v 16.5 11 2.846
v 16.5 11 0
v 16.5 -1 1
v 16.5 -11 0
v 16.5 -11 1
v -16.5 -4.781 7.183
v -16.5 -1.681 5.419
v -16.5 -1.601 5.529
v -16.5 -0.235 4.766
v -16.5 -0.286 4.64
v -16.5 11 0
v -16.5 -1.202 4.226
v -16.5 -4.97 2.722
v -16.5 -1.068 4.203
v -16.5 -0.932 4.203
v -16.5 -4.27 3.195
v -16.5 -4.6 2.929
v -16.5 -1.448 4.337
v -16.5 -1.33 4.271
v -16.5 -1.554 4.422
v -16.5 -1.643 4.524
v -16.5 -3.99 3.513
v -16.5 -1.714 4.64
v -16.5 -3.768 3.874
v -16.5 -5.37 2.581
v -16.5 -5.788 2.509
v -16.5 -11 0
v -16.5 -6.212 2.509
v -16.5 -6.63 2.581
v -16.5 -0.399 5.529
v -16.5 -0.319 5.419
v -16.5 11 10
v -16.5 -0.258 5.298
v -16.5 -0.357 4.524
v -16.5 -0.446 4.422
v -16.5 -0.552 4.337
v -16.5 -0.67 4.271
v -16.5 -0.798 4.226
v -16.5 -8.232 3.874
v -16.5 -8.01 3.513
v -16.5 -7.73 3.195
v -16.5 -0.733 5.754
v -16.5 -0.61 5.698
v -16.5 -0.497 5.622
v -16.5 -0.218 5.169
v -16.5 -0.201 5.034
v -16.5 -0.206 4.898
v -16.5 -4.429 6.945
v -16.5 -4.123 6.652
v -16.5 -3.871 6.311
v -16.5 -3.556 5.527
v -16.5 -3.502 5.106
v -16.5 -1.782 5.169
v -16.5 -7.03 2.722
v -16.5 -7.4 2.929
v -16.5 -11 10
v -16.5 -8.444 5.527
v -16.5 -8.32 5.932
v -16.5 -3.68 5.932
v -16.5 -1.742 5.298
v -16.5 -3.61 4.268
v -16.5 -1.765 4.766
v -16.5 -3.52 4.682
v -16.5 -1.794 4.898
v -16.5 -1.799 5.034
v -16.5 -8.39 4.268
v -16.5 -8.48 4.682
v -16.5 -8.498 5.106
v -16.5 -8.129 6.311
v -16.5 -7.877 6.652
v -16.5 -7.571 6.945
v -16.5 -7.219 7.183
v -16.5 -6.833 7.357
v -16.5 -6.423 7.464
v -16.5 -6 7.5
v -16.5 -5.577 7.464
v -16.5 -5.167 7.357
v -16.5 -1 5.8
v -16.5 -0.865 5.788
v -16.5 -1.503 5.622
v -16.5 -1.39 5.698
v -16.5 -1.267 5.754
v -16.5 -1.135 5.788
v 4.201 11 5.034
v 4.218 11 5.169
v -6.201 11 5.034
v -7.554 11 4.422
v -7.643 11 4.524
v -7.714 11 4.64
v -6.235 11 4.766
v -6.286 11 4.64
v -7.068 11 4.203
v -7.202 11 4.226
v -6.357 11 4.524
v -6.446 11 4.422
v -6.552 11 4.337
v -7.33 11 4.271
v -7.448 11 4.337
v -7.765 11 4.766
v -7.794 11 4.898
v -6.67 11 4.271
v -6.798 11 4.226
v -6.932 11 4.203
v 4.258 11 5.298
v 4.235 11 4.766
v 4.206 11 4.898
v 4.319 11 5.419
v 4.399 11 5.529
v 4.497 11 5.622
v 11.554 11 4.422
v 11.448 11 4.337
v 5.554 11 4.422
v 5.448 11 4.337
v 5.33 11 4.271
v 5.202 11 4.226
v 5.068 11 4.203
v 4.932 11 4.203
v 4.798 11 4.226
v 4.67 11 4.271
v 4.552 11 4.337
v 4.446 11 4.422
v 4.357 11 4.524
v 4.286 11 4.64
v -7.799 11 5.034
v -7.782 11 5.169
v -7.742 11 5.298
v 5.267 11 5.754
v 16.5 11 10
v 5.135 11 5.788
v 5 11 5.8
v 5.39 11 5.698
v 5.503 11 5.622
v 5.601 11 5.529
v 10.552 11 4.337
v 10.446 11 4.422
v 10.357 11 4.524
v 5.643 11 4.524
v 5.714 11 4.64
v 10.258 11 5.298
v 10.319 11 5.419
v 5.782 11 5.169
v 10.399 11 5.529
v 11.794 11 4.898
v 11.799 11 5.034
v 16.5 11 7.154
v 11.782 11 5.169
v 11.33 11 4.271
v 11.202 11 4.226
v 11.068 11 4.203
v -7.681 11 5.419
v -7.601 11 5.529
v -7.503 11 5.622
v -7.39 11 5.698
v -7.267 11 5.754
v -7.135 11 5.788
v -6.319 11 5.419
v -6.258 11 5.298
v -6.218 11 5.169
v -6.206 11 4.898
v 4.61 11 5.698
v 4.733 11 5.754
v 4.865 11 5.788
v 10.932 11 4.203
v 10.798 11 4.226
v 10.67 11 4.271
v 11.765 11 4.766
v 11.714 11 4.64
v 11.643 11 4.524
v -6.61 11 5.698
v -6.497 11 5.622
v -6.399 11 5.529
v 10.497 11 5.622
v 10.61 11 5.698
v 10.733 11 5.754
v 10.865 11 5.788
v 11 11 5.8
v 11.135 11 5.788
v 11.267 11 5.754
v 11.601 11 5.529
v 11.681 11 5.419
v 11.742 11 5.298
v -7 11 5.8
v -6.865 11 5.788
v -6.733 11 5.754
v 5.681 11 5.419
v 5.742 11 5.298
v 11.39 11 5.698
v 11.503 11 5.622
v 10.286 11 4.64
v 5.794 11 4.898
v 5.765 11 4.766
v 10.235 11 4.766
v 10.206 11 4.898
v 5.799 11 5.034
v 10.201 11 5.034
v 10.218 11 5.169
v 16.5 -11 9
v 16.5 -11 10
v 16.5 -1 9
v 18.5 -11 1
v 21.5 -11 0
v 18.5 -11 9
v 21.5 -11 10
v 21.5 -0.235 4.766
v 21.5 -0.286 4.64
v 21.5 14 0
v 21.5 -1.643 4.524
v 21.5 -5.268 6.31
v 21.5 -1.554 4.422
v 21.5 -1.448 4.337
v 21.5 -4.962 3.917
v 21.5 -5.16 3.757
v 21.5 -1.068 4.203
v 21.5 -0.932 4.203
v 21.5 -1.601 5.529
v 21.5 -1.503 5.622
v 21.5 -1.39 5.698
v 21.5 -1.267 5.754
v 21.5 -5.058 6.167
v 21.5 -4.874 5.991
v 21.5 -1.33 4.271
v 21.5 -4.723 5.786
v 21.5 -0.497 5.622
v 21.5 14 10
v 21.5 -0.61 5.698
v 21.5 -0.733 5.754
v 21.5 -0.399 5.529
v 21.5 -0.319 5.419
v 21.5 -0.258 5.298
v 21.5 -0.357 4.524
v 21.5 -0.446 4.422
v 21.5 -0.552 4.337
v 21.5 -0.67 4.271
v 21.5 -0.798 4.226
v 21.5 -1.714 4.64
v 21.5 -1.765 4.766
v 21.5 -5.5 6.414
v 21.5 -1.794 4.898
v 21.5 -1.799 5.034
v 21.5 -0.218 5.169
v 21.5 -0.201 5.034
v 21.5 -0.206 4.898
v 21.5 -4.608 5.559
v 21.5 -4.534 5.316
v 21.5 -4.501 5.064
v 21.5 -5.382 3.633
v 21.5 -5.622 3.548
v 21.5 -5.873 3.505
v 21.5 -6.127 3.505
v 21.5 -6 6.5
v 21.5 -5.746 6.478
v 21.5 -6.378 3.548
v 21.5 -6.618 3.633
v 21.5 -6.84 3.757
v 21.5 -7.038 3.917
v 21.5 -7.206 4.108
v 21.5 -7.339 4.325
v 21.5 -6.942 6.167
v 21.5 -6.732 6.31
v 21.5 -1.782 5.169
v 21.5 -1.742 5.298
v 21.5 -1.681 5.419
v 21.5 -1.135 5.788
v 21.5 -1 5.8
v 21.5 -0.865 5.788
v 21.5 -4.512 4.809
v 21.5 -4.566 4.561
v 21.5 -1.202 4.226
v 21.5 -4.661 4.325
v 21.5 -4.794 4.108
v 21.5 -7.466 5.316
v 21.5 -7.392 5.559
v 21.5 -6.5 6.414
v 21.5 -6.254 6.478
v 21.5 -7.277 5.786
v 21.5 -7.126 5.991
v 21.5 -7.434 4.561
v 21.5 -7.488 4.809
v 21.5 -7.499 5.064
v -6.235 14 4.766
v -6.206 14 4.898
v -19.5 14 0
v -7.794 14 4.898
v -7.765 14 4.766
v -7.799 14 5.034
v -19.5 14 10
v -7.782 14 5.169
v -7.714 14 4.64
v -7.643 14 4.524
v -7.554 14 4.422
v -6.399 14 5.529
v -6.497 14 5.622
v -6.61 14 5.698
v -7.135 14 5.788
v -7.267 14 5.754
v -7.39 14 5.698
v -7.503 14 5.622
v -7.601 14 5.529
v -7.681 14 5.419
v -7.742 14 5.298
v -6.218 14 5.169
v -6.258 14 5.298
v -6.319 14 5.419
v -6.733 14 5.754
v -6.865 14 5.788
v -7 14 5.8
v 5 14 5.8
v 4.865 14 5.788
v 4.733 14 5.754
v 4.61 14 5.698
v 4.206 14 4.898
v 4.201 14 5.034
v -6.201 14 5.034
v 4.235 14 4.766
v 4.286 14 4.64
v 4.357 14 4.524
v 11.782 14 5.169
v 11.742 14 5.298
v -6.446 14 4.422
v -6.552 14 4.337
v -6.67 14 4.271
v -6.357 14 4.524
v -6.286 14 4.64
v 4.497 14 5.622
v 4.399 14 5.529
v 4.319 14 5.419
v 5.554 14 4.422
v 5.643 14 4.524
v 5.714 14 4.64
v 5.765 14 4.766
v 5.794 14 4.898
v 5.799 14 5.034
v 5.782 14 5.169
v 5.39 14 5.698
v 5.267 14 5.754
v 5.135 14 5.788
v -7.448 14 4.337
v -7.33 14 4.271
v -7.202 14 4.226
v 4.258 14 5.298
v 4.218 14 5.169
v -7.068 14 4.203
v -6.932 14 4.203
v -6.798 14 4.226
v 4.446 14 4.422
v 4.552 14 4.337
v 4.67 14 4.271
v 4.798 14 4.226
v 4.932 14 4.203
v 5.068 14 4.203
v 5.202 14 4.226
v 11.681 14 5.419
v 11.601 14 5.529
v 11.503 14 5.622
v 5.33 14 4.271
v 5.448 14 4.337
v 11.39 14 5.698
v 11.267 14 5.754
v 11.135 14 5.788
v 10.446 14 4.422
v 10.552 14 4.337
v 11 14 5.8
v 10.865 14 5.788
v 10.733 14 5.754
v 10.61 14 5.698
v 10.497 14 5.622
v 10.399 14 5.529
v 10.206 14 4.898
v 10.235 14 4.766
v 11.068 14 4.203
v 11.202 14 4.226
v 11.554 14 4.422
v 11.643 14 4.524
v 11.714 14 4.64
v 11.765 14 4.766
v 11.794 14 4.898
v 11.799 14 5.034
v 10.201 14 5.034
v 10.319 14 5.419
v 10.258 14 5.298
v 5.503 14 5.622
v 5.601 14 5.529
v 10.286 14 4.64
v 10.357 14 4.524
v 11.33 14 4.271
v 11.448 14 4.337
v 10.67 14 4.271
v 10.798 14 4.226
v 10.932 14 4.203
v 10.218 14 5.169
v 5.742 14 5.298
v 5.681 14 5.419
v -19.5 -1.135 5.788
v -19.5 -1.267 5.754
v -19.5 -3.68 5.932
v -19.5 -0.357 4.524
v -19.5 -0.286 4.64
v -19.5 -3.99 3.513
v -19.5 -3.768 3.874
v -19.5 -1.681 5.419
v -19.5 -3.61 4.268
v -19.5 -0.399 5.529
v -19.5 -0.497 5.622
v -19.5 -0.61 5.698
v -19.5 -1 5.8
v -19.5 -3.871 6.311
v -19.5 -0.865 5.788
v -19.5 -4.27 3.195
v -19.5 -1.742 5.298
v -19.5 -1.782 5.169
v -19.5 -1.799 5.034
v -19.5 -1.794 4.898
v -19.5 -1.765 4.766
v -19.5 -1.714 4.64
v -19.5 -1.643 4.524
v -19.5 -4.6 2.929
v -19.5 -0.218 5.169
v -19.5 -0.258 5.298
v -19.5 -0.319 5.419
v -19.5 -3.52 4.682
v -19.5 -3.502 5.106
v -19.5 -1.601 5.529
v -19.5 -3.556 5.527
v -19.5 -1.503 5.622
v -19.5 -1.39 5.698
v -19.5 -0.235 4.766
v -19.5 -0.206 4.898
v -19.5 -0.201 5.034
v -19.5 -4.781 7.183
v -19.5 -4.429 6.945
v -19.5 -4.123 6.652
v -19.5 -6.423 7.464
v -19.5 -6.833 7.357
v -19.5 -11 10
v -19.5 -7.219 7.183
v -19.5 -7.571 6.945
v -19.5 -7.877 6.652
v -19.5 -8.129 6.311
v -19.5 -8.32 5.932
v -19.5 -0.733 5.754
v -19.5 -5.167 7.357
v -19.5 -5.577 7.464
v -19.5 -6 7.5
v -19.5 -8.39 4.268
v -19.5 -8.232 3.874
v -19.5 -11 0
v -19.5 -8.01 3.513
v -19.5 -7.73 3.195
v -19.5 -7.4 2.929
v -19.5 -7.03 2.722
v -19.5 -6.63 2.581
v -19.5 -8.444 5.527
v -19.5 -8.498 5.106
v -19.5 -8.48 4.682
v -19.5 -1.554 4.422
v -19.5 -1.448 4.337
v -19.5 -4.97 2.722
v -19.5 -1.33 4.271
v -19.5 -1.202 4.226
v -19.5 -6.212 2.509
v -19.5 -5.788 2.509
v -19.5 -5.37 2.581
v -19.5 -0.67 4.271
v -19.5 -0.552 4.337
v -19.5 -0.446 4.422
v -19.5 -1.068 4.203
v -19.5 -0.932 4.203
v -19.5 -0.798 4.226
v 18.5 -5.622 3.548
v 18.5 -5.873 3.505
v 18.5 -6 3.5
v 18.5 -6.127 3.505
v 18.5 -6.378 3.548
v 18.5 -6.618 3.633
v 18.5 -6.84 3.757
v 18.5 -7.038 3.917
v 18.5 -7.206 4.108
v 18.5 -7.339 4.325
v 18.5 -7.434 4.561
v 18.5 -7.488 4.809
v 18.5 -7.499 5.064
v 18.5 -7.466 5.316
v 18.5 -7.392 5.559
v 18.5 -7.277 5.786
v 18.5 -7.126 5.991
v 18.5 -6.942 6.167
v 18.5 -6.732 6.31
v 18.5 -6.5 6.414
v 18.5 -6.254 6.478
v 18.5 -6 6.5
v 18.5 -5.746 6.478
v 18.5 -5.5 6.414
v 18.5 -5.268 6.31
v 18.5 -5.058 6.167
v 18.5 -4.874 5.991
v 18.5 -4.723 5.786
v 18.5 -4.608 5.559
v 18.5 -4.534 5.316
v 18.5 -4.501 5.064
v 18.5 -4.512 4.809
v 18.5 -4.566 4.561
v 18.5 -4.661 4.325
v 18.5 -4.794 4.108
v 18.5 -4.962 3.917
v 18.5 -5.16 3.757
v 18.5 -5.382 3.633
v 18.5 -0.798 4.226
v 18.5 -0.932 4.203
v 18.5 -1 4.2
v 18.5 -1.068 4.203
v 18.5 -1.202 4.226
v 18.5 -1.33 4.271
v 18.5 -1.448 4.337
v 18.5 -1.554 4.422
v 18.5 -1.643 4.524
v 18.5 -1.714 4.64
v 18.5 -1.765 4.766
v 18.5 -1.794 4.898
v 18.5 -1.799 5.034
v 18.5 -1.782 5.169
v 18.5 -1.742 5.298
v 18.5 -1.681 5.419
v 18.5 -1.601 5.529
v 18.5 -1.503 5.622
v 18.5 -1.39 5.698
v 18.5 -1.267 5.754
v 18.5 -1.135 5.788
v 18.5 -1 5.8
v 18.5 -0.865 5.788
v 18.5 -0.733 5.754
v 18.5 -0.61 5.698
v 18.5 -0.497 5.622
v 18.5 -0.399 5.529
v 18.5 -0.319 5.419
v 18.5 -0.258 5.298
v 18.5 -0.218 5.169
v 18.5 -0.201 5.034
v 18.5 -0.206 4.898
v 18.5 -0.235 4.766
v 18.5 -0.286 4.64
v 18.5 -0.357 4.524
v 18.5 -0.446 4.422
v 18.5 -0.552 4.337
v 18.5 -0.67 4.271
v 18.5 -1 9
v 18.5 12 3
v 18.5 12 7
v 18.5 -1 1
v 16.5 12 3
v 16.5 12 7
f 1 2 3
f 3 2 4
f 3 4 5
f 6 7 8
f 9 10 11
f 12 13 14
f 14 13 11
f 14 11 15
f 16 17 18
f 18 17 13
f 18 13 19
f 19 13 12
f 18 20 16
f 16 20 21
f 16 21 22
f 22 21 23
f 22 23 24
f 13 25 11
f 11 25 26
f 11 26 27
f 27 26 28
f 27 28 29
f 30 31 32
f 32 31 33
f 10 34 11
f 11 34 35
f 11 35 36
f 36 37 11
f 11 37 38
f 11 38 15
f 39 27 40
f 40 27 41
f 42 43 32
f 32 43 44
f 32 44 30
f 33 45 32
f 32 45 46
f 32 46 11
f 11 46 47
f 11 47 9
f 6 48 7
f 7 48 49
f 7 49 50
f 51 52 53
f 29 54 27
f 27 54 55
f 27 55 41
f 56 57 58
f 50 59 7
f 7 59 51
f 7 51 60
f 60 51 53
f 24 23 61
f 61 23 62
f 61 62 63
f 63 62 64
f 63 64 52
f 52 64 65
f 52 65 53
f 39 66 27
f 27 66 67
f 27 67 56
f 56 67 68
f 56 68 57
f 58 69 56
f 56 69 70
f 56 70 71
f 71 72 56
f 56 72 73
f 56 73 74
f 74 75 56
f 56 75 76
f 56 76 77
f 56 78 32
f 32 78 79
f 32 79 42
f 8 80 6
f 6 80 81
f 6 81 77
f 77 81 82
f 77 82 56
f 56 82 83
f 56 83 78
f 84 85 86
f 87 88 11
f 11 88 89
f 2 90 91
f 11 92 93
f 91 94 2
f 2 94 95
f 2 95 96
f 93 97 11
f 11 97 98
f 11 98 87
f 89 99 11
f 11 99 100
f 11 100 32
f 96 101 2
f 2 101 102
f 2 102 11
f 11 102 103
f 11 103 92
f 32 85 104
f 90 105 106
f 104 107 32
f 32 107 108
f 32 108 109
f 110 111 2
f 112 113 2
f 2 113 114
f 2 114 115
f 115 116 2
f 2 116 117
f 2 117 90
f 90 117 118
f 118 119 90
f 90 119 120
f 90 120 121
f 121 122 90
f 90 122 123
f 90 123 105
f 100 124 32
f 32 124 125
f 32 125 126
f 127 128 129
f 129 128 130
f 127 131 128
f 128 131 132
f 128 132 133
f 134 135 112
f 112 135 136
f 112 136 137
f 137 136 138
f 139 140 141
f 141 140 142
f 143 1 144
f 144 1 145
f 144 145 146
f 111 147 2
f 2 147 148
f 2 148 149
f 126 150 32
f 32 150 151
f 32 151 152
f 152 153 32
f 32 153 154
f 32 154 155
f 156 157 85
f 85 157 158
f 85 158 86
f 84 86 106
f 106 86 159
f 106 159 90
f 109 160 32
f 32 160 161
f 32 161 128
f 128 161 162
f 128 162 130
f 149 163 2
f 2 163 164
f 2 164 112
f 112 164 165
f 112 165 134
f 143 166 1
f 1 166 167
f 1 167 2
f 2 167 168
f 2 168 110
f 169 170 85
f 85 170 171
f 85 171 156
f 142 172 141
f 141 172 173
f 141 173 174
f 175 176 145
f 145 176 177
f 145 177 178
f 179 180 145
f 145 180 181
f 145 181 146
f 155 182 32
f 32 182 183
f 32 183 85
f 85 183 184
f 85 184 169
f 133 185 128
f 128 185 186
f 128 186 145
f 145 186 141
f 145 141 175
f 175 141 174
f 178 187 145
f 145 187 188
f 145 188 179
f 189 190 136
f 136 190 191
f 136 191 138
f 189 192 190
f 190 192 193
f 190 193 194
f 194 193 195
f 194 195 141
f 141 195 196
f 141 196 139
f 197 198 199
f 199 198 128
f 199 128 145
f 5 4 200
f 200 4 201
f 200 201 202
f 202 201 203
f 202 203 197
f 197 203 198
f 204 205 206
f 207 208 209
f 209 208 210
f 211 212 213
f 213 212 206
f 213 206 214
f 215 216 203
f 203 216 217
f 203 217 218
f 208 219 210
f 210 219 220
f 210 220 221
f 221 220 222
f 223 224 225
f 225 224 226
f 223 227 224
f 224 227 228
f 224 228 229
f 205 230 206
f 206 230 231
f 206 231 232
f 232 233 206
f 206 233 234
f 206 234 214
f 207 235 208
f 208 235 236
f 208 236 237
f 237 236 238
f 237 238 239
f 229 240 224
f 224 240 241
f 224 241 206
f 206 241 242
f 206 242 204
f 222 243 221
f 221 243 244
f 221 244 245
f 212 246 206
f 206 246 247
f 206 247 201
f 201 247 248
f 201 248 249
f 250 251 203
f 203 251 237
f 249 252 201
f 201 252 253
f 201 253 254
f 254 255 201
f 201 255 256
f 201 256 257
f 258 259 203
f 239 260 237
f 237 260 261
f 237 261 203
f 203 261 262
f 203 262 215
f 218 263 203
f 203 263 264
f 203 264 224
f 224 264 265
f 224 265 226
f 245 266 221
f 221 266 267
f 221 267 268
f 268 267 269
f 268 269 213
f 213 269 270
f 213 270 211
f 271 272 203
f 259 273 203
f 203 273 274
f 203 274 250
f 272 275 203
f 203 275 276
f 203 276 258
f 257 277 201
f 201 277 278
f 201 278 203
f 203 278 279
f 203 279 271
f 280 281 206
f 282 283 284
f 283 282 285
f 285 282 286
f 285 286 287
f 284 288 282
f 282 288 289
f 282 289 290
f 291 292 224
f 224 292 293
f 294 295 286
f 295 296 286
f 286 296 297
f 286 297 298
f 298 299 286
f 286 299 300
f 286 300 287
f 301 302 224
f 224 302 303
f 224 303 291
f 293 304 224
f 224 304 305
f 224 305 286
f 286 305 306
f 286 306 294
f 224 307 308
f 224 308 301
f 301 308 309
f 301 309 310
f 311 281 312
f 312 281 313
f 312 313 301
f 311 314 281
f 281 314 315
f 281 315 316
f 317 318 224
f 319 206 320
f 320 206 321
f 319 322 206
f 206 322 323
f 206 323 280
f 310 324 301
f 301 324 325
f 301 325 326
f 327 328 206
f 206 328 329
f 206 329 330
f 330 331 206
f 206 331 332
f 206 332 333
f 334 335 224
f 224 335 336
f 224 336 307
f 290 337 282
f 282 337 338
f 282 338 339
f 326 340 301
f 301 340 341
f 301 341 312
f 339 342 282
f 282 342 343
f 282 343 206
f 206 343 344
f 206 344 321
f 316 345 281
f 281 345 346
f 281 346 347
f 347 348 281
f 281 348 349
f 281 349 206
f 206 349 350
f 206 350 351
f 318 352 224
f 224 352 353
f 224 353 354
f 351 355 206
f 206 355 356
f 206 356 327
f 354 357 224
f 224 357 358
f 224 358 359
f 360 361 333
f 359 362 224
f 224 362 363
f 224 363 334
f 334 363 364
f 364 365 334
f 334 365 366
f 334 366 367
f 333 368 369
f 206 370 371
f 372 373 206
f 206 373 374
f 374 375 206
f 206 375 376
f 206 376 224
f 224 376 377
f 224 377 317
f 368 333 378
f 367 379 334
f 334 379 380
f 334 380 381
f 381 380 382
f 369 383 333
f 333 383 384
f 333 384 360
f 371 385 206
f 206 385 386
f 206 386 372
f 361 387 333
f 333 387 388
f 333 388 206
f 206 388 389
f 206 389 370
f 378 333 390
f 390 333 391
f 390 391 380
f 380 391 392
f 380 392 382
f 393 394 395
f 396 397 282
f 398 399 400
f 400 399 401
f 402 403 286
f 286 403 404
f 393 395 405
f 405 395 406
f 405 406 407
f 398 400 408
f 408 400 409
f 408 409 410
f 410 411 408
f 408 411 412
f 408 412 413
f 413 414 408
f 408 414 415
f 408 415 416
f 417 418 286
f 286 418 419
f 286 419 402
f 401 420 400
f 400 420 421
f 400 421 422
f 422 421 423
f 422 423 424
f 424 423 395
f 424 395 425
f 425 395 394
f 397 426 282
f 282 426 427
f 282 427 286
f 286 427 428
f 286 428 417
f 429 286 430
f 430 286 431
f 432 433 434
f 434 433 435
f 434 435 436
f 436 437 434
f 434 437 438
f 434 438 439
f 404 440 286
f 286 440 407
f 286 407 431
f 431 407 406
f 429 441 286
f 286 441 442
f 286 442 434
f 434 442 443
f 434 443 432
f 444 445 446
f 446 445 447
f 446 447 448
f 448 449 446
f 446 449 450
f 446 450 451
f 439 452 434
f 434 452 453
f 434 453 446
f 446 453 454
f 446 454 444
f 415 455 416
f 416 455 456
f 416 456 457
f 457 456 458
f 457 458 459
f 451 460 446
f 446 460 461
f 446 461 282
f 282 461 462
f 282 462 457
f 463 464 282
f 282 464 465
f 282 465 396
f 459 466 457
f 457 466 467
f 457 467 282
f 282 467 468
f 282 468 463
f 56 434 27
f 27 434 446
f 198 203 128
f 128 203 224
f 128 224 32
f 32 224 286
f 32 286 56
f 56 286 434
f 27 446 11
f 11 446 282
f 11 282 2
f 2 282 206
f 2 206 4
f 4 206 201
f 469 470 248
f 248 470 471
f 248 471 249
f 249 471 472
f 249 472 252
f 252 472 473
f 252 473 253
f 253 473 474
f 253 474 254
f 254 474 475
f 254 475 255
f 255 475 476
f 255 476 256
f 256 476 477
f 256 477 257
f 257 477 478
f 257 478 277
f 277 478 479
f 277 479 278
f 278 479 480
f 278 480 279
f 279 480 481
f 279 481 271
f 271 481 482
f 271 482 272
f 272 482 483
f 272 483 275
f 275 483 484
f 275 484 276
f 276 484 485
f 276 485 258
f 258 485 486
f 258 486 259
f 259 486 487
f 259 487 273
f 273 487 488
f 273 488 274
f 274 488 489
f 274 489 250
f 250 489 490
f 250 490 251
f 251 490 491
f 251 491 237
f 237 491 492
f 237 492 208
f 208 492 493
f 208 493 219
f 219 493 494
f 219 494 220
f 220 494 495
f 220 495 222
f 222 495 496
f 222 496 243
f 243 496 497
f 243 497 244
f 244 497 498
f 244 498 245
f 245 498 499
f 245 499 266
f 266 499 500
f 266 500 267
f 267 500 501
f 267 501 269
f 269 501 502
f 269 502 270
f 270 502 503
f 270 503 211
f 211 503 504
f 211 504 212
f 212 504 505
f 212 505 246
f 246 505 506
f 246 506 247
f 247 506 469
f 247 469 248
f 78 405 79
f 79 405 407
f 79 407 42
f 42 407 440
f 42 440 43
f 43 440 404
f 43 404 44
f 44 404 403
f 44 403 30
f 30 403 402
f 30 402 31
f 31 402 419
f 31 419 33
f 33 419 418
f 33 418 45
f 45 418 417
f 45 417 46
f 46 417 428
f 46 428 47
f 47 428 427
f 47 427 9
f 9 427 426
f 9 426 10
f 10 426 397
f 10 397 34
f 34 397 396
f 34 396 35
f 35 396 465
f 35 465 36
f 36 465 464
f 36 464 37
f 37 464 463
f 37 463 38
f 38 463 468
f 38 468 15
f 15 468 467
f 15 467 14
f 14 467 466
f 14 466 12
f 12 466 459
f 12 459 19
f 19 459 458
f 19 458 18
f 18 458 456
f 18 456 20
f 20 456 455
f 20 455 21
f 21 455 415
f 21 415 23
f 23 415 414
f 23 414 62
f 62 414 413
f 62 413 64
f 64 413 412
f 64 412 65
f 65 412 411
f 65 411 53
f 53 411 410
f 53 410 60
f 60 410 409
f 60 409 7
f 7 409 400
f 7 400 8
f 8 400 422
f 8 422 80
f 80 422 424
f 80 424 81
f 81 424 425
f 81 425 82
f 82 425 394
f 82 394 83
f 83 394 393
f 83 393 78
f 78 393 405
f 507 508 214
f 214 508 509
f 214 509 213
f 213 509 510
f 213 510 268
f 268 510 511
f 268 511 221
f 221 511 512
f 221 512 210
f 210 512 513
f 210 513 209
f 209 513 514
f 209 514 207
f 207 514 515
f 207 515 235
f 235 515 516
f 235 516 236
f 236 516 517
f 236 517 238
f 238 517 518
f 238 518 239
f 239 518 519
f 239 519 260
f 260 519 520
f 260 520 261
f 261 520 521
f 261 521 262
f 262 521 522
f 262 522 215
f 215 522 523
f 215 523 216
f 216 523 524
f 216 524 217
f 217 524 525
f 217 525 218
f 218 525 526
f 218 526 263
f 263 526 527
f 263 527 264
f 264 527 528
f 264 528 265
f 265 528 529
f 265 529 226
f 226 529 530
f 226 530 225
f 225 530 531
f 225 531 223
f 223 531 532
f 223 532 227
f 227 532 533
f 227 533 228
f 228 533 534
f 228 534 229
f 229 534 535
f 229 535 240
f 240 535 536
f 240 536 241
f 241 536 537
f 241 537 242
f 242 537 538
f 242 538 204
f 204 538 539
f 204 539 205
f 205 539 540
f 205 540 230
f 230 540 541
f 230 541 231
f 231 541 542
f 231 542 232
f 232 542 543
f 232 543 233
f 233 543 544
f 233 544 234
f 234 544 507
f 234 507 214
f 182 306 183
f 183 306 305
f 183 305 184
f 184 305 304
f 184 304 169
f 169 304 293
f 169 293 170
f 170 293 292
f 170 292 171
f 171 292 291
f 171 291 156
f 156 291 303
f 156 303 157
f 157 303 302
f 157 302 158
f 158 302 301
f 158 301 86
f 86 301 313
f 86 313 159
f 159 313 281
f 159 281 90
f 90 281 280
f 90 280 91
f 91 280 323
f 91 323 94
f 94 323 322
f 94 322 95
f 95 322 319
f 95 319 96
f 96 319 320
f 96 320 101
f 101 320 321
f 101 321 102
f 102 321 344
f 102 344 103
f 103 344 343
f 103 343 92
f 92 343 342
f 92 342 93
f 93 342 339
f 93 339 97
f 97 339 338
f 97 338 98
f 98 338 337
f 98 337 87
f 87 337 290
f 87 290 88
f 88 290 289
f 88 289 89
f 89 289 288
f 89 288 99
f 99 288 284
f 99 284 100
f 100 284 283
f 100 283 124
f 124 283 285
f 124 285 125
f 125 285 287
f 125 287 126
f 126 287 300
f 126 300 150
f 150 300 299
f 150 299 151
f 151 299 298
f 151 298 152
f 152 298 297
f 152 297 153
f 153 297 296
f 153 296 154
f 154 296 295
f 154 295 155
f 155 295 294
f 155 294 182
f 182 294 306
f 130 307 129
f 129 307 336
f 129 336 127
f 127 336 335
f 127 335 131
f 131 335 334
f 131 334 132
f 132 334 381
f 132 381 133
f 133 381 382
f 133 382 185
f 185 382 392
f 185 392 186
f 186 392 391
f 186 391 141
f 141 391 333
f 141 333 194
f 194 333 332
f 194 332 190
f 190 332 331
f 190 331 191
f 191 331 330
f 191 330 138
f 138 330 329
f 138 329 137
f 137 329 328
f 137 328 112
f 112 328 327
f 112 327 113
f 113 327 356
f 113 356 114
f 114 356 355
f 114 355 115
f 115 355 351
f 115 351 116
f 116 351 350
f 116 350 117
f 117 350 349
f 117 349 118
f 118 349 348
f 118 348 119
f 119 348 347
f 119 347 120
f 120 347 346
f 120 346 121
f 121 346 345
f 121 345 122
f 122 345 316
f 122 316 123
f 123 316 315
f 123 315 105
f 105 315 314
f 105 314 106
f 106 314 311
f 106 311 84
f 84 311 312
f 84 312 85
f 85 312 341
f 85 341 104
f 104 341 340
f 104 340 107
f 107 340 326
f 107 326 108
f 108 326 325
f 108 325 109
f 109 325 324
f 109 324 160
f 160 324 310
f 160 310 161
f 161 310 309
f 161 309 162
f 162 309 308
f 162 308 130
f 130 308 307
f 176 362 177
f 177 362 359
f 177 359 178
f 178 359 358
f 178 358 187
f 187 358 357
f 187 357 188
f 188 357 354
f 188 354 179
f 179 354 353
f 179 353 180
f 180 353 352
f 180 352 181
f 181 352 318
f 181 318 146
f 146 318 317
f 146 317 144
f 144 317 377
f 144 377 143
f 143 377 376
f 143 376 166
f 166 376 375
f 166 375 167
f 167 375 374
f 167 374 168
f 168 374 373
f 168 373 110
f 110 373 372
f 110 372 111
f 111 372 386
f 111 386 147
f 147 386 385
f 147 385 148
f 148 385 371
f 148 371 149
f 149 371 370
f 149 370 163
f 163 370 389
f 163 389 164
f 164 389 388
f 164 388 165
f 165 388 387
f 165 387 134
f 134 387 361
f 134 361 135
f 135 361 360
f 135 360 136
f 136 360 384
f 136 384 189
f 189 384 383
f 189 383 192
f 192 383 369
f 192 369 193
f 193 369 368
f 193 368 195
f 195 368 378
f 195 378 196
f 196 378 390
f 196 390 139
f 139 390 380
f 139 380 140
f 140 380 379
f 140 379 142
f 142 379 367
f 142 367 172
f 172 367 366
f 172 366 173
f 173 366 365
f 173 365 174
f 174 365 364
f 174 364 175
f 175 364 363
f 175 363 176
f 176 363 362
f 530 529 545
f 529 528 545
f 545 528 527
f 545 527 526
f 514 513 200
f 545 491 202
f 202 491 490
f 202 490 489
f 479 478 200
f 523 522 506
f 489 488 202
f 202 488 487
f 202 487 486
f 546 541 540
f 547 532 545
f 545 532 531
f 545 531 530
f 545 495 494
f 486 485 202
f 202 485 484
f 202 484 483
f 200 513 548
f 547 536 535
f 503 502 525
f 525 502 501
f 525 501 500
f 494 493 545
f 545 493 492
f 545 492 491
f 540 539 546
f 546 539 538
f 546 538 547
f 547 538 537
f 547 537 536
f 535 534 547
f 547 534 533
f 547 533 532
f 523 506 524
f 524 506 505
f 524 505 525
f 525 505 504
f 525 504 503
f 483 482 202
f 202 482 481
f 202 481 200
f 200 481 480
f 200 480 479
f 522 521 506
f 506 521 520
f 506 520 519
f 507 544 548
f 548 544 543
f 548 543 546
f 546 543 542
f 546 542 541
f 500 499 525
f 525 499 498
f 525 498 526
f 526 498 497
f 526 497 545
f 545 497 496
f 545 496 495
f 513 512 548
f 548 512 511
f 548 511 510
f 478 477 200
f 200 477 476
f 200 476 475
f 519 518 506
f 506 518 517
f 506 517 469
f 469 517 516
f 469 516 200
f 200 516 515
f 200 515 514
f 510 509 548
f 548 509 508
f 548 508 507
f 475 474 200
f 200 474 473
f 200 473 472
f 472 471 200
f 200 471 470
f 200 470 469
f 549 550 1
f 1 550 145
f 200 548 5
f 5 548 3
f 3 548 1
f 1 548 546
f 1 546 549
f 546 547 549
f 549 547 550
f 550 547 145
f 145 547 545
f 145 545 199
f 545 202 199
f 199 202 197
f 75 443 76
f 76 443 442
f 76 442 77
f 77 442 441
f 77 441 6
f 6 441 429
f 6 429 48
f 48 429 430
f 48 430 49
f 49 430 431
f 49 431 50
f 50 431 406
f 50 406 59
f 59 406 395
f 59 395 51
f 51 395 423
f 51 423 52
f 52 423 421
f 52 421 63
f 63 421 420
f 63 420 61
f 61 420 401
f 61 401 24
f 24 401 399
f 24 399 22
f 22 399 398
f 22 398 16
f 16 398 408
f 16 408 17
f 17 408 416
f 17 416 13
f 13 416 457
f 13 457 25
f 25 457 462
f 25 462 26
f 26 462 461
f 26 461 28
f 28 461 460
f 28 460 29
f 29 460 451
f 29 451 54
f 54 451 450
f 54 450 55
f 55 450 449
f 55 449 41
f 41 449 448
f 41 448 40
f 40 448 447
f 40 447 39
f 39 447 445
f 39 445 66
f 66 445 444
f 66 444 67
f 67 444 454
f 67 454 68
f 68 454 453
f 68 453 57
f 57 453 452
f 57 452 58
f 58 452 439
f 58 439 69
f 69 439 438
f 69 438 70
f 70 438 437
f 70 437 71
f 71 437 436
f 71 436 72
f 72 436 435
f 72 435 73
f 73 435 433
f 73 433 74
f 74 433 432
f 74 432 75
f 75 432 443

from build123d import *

# Parameters (mm, degrees)
BOSS_EXTRUDE1_DEPTH = 10
SKETCH4_R           = 1.5
SKETCH4_R_2         = 0.8
CUT_EXTRUDE1_DEPTH  = 42
SKETCH6_R           = 0.8
CUT_EXTRUDE2_DEPTH  = 26
CUT_EXTRUDE3_DEPTH  = 2
SKETCH9_R           = 2.5
CUT_EXTRUDE4_DEPTH  = 10


with BuildPart() as part:
    # Sketch2 → Boss-Extrude1 (new body)
    with BuildSketch(Plane.XY):
        Polygon((-16.5, -11), (-19.5, -11), (-19.5, 14), (21.5, 14), (21.5, -11), (16.5, -11), (16.5, 11), (-16.5, 11), align=None)
    extrude(amount=BOSS_EXTRUDE1_DEPTH)

    # Sketch4 → Cut-Extrude1 (cut, through all)
    with BuildSketch(Plane.ZY.offset(19.5)):
        with Locations((5, -6)):
            Circle(SKETCH4_R)
        with Locations((5, -1)):
            Circle(SKETCH4_R_2)
    extrude(amount=-CUT_EXTRUDE1_DEPTH, mode=Mode.SUBTRACT)

    # Sketch6 → Cut-Extrude2 (cut, through all)
    with BuildSketch(Plane(origin=(0, 14, 0), x_dir=(1, 0, 0), z_dir=(0, 1, 0))):
        with Locations((-7, -5)):
            Circle(SKETCH6_R)
        with Locations((11, -5)):
            Circle(SKETCH6_R)
        with Locations((5, -5)):
            Circle(SKETCH6_R)
    extrude(amount=-CUT_EXTRUDE2_DEPTH, mode=Mode.SUBTRACT)

    # Sketch8 → Cut-Extrude3 (cut)
    with BuildSketch(Plane.ZY.offset(-16.5)):
        Polygon((1, -1), (1, -11), (9, -11), (9, -1), (7, 12), (3, 12), align=None)
    extrude(amount=-CUT_EXTRUDE3_DEPTH, mode=Mode.SUBTRACT)

    # Sketch9 → Cut-Extrude4 (cut)
    with BuildSketch(Plane.ZY.offset(19.5)):
        with Locations((5, -6)):
            Circle(SKETCH9_R)
    extrude(amount=-CUT_EXTRUDE4_DEPTH, mode=Mode.SUBTRACT)


solid = part.part
